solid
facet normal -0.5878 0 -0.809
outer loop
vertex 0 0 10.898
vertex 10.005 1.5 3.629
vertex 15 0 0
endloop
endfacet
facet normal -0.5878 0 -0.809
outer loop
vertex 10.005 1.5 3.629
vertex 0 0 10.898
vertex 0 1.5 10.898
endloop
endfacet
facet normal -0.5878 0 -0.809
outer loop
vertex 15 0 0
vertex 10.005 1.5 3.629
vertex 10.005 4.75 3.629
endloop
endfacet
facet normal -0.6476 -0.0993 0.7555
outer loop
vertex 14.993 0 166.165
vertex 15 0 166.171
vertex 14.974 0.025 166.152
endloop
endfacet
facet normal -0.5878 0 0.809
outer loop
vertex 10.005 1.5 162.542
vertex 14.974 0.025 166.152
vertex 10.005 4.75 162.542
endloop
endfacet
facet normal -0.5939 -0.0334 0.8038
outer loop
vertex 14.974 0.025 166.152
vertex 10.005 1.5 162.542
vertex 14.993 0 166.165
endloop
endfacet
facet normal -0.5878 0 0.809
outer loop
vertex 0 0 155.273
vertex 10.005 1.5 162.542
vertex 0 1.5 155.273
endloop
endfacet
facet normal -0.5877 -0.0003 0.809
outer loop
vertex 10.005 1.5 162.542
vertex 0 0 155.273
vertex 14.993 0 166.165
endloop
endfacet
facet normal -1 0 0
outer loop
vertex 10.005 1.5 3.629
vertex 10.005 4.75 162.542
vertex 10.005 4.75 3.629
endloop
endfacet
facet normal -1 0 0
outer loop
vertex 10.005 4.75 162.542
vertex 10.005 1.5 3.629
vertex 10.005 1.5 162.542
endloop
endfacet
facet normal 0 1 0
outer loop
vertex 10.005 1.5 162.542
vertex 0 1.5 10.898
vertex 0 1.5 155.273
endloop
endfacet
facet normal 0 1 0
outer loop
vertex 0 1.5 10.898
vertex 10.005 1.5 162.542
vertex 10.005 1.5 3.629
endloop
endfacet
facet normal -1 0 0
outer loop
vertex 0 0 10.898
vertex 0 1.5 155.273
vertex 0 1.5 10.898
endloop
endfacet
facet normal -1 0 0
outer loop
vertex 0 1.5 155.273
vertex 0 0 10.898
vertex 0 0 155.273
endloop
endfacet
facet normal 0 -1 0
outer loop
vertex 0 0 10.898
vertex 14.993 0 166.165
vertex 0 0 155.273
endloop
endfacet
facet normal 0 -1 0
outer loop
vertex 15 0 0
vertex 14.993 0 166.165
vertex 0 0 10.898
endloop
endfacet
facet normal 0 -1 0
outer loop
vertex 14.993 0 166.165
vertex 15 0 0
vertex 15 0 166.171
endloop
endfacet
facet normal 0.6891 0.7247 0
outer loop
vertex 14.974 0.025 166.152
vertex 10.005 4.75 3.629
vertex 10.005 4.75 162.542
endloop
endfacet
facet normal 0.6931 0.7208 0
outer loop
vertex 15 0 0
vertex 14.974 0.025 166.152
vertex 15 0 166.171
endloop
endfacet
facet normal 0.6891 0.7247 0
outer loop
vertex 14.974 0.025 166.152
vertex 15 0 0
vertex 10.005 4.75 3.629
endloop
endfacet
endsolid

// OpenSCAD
// Regular Dodecahedron Edge Ribs


// Cf. https://github.com/openscad/openscad/issues/4603 for a good discussion
// that helped resolve some of the issues in this design.

$fn = 40;

// Variable parameters to cusomize the edge ribs
paneEdge = (6 * 25.4); // paneEdge (6in x 25.4 mm/in)
edgeThickness = 1.5;   // thickness of the edge
ribWidth = 15;         // width of the rib
paneThickness = 3.25;  // thickness of the pane
channelWidth = 11;     // width of LED strip channel
channelDepth = 1;      // depth of LED strip channel
wireWidth = 3 * 1.6;   // width of wire channel (3x 22 AWG insulated wires)
wireDepth = 1.6;       // depth of wire channel (1x 22 AWG insulated wire)
dihedral = 116.56505;  // angle of polyhedron dihedral
interior = 108.0;      // angle of face interior
fudge = 0.01;          // render artifact elimination fudge factor

// Calculated parameters
edge = 0.667 * ribWidth  * tan(interior / 2) + paneEdge;
echo("pane edge", paneEdge);
echo("edge", edge);

difference() {
    extruded_edge(edge, edgeThickness, ribWidth, paneThickness, channelWidth, channelDepth, wireWidth, wireDepth, dihedral);
    bevel_cuts(ribWidth, interior, dihedral);
    translate([ribWidth,0,edge]) {
        rotate([0,0,180-dihedral]) {
            translate([ribWidth,0,0]) {
                rotate([0,180,0]) {
                    bevel_cuts(ribWidth, interior, dihedral);
                }
            }
        }
    }
}


// Bevel cuts for the end of the rib
module bevel_cuts(ribWidth, interior, dihedral) {
    union() {
        angle_cut(ribWidth, interior);
        translate([ribWidth,0,0]) {
            rotate([0,0,180-dihedral]) {
                translate([ribWidth, 0, 0]) {
                    mirror([1,0,0]) {
                        angle_cut(ribWidth, interior);
                    }
                }
            }
        }
    }
}


// Half of one bevel
module angle_cut(ribWidth, interior) {

    angle_ab = 90 - (interior / 2);

    ax = 0;
    ay = 0;
    az = 0;
    bx = ribWidth;
    by = 0;
    bz = 0;
    cx = 0;
    cy = 0;
    cz = ribWidth * tan(angle_ab);
    dx = 0;
    dy = 20;
    dz = 0;
    ex = ribWidth;
    ey = 20;
    ez = 0;
    fx = 0;
    fy = 20;
    fz = ribWidth * tan(angle_ab);

    polyhedron(
        points=[
            [ax-fudge, ay-fudge, az-fudge], // point a (0)
            [bx, by-fudge, bz],             // point b (1)
            [cx, cy-fudge, cz],             // point c (2)
            [dx-fudge, dy, dz-fudge],       // point d (3)
            [ex, ey, ez],                   // point e (4)
            [fx, fy, fz]                    // point f (5)
        ],
        faces=[
            [0, 3, 5, 2], // face A
            [0, 1, 4, 3], // face B
            [1, 2, 5, 4], // face C
            [3, 4, 5],    // face D
            [0, 2, 1]     // face E
        ],
        convexity=10
    );
};


// Rib extrusion
module extruded_edge(edge, edgeThickness, ribWidth, paneThickness, channelWidth, channelDepth, wireWidth, wireDepth, dihedral) {

    linear_extrude(height=edge, center=false, convexity=10, twist=0, slices=20, scale=1) {
        
        ax = 0;
        ay = 0;
        bx = ribWidth;
        by = 0;
        cx = ribWidth + ribWidth * cos(180 - dihedral);
        cy = ribWidth * sin(180 - dihedral);
        dx = cx - edgeThickness * cos(dihedral - 90);
        dy = cy + edgeThickness * sin(dihedral - 90);
        ex = dx - 0.667 * ribWidth * cos(180 - dihedral);
        ey = dy - 0.667 * ribWidth * sin(180 - dihedral);
        fx = ex - paneThickness * cos(dihedral - 90);
        fy = ey + paneThickness * sin(dihedral - 90);
        gx = fx + 0.667 * ribWidth * cos(180 - dihedral);
        gy = fy + 0.667 * ribWidth * sin(180 - dihedral);
        px = 0;
        py = edgeThickness + paneThickness;
        qx = 0.667 * ribWidth;
        qy = py;
        rx = qx;
        ry = edgeThickness;
        sx = 0;
        sy = ry; 

        angle_opq = atan((gy - py) / gx);  // derived angle of inside edge
        gp = gx / cos(angle_opq);          // total width of inside edge
        gh = 0.5 * (gp - channelWidth);    // width of offset on either side of the LED channel
        ho = gp - 2 * gh;                  // derived width of LED channel (should match specified)
        jm = wireWidth;                    // total width of wire channel
        ij = 0.5 * (ho - jm);              // width of offset on either side of wire channel within the LED channel
        assert(ho == channelWidth, "Derived channel width does not match specified width");
        assert(jm < ho, "Total wire channel width exceeds the width of the LED strip");

        hx = gx - gh * cos(angle_opq);
        hy = gy - gh * sin(angle_opq);
        ix = hx + channelDepth * sin(90 - 2 * angle_opq);
        iy = hy - channelDepth * cos(90 - 2 * angle_opq);
        ox = px + gh * cos(angle_opq);
        oy = py + gh * sin(angle_opq);
        nx = ox + channelDepth * sin(90 - 2 * angle_opq);
        ny = oy - channelDepth * cos(90 - 2 * angle_opq);
        jx = ix - ij * cos(angle_opq);
        jy = iy - ij * sin(angle_opq);
        kx = jx + wireDepth * sin(90 - 2 * angle_opq);
        ky = jy - wireDepth * cos(90 - 2 * angle_opq);
        mx = nx + ij * cos(angle_opq);
        my = ny + ij * sin(angle_opq);
        lx = mx + wireDepth * sin(90 - 2 * angle_opq);
        ly = my - wireDepth * cos(90 - 2 * angle_opq);
                
        polygon([
            [ax, ay], // point 'a'
            [bx, by], // point 'b'
            [qx, qy], // point 'q'
            [rx, ry], // point 'r'
            [sx, sy]  // point 's'
        ]);
    };
};
